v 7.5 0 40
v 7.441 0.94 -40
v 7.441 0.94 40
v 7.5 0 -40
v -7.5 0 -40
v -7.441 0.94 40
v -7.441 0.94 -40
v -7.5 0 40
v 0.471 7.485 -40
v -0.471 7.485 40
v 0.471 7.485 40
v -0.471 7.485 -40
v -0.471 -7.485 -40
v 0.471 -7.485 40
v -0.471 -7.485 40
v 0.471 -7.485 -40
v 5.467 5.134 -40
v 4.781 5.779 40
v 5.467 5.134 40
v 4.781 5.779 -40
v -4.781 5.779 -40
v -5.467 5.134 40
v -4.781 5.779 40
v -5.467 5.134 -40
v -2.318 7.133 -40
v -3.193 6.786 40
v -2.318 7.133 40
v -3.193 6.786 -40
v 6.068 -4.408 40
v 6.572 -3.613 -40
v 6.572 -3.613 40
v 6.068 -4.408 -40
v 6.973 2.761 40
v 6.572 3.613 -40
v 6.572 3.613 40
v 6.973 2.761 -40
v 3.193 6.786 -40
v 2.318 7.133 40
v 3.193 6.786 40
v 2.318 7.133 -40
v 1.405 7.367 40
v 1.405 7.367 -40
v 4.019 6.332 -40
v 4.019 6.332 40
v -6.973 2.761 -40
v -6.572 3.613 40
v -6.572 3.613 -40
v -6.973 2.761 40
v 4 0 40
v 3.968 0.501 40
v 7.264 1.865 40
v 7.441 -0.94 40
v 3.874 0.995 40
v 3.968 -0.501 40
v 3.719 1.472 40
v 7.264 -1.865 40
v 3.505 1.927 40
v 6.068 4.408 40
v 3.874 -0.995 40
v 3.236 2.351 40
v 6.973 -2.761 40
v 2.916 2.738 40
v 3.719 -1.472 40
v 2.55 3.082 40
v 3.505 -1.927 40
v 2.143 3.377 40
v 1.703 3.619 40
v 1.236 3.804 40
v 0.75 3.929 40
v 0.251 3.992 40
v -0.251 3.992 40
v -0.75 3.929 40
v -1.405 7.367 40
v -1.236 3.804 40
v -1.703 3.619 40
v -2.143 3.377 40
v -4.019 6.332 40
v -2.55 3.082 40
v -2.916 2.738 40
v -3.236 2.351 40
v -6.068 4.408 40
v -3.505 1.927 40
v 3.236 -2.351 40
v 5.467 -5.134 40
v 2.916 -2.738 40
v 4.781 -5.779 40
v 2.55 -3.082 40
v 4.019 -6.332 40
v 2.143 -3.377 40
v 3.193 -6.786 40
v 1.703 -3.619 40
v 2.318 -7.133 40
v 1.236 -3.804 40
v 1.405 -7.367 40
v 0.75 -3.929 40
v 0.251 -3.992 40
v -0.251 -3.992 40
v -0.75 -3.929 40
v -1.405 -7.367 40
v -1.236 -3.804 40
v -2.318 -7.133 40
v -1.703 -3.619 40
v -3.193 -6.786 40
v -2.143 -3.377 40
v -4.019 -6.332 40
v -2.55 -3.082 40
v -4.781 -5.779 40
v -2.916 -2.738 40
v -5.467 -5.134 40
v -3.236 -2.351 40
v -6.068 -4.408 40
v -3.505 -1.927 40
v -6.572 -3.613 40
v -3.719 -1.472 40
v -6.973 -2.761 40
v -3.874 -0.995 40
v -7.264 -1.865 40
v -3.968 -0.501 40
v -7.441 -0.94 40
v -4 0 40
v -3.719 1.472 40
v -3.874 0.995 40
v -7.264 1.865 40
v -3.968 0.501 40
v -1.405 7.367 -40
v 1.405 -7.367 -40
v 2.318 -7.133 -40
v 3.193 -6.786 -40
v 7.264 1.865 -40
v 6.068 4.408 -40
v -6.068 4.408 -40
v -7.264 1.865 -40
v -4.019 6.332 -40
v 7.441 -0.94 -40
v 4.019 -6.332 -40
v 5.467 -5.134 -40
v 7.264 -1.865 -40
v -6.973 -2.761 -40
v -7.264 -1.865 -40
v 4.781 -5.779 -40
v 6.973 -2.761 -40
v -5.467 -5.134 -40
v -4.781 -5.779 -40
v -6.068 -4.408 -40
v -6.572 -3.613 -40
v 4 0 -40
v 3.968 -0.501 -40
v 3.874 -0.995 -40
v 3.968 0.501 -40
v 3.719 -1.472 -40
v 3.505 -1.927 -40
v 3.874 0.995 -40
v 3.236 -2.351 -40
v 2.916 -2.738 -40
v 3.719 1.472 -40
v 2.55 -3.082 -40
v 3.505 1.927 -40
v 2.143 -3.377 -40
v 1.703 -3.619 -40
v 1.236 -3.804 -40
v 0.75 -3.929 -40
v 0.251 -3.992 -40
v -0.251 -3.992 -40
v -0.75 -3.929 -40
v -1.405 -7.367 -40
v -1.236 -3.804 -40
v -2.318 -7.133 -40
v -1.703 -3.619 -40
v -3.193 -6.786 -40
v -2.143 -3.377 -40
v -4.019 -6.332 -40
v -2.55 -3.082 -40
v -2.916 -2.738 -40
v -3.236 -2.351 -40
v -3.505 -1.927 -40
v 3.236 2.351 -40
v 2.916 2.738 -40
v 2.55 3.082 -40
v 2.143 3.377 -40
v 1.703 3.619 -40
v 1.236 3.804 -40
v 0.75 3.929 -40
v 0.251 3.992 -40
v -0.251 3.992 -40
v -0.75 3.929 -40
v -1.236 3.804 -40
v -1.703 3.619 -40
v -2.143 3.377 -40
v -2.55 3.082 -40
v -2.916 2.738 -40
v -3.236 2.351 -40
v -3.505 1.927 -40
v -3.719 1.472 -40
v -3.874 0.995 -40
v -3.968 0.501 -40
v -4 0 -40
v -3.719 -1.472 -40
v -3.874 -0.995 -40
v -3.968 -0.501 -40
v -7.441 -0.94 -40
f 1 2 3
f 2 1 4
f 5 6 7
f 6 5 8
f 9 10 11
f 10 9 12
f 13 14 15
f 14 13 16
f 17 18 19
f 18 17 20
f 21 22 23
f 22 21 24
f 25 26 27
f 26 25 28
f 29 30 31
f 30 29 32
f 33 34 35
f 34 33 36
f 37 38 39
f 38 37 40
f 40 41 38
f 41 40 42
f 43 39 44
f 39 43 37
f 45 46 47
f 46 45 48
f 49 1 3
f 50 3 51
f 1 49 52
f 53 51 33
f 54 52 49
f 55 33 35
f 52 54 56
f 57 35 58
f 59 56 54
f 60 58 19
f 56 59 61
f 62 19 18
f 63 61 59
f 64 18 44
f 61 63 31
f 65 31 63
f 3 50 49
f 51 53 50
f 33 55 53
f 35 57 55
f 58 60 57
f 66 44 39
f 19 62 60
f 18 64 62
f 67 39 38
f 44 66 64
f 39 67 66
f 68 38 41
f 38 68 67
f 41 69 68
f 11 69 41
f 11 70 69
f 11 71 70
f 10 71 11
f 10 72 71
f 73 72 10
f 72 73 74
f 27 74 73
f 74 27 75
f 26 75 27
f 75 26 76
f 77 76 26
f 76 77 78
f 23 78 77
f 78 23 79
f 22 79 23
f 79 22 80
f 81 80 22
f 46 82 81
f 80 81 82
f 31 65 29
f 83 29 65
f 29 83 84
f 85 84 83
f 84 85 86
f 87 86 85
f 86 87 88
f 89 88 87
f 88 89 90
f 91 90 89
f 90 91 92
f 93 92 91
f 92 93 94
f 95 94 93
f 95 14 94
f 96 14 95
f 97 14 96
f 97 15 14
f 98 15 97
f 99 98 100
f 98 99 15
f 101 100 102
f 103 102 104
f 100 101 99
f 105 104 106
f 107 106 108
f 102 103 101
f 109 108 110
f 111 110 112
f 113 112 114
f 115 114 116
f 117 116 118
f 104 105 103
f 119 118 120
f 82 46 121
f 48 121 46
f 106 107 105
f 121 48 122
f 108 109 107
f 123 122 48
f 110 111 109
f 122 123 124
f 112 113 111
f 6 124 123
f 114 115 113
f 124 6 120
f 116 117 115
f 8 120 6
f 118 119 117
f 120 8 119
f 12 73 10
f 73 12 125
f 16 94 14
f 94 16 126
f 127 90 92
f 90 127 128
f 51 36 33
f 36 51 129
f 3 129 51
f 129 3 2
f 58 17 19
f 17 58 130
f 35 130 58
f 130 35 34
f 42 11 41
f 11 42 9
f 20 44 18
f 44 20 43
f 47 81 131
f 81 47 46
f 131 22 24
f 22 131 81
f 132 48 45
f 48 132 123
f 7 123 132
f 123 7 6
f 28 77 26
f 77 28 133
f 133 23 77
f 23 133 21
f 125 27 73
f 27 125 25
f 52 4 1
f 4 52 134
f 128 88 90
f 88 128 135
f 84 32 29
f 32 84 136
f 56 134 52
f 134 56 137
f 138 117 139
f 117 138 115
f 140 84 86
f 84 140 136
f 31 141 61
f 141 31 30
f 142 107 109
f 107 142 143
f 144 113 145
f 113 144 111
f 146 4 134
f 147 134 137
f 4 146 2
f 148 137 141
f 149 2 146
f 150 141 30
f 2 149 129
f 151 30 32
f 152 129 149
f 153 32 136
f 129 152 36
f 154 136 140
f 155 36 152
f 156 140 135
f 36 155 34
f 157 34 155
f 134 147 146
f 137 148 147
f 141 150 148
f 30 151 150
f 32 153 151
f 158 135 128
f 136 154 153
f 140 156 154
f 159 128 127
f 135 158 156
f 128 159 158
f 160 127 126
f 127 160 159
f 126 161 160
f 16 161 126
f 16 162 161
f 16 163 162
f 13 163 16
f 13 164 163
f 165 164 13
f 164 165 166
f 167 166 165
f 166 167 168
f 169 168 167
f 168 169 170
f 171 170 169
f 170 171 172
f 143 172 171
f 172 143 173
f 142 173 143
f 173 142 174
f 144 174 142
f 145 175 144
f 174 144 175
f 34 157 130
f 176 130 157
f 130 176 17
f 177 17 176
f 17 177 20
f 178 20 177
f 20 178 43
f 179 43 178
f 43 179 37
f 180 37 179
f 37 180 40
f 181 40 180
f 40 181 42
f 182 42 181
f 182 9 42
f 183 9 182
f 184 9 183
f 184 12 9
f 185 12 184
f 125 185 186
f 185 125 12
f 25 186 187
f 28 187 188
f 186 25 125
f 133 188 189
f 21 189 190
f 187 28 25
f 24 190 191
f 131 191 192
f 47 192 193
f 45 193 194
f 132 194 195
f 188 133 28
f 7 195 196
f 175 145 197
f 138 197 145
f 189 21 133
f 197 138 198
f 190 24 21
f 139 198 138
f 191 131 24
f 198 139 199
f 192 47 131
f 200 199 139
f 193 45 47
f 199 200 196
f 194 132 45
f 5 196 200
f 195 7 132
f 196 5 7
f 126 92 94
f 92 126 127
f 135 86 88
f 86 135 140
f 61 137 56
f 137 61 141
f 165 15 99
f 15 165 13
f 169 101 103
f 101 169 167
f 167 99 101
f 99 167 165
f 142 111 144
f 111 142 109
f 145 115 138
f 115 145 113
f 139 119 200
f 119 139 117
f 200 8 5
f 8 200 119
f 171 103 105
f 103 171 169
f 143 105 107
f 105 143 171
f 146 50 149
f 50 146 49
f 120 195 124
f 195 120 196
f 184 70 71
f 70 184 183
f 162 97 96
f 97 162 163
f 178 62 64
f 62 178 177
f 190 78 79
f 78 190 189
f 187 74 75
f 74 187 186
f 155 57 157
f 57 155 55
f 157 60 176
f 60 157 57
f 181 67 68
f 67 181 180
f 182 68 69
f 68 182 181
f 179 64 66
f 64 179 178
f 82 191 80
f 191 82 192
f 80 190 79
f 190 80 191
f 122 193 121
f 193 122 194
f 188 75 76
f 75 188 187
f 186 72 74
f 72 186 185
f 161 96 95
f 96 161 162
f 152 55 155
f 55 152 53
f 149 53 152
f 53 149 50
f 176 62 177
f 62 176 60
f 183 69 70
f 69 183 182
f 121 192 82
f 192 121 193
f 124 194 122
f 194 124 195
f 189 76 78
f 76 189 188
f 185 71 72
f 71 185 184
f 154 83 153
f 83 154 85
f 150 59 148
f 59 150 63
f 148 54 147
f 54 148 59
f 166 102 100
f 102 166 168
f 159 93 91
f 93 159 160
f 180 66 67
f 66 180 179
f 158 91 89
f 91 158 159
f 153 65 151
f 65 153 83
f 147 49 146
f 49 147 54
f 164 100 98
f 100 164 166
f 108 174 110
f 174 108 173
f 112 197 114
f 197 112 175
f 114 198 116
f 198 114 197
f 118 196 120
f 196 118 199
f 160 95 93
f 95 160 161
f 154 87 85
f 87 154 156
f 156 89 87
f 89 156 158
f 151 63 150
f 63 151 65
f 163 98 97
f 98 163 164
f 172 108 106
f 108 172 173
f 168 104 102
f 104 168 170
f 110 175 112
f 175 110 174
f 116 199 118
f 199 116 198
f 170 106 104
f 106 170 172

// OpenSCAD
$fn = 50;


difference() {
	union() {
		translate(v = [0, 0, -40.0000000000]) {
			cylinder(h = 80, r = 7.5000000000);
		}
	}
	union() {
		translate(v = [0, 0, -100.0000000000]) {
			cylinder(h = 200, r = 4.0000000000);
		}
	}
}
